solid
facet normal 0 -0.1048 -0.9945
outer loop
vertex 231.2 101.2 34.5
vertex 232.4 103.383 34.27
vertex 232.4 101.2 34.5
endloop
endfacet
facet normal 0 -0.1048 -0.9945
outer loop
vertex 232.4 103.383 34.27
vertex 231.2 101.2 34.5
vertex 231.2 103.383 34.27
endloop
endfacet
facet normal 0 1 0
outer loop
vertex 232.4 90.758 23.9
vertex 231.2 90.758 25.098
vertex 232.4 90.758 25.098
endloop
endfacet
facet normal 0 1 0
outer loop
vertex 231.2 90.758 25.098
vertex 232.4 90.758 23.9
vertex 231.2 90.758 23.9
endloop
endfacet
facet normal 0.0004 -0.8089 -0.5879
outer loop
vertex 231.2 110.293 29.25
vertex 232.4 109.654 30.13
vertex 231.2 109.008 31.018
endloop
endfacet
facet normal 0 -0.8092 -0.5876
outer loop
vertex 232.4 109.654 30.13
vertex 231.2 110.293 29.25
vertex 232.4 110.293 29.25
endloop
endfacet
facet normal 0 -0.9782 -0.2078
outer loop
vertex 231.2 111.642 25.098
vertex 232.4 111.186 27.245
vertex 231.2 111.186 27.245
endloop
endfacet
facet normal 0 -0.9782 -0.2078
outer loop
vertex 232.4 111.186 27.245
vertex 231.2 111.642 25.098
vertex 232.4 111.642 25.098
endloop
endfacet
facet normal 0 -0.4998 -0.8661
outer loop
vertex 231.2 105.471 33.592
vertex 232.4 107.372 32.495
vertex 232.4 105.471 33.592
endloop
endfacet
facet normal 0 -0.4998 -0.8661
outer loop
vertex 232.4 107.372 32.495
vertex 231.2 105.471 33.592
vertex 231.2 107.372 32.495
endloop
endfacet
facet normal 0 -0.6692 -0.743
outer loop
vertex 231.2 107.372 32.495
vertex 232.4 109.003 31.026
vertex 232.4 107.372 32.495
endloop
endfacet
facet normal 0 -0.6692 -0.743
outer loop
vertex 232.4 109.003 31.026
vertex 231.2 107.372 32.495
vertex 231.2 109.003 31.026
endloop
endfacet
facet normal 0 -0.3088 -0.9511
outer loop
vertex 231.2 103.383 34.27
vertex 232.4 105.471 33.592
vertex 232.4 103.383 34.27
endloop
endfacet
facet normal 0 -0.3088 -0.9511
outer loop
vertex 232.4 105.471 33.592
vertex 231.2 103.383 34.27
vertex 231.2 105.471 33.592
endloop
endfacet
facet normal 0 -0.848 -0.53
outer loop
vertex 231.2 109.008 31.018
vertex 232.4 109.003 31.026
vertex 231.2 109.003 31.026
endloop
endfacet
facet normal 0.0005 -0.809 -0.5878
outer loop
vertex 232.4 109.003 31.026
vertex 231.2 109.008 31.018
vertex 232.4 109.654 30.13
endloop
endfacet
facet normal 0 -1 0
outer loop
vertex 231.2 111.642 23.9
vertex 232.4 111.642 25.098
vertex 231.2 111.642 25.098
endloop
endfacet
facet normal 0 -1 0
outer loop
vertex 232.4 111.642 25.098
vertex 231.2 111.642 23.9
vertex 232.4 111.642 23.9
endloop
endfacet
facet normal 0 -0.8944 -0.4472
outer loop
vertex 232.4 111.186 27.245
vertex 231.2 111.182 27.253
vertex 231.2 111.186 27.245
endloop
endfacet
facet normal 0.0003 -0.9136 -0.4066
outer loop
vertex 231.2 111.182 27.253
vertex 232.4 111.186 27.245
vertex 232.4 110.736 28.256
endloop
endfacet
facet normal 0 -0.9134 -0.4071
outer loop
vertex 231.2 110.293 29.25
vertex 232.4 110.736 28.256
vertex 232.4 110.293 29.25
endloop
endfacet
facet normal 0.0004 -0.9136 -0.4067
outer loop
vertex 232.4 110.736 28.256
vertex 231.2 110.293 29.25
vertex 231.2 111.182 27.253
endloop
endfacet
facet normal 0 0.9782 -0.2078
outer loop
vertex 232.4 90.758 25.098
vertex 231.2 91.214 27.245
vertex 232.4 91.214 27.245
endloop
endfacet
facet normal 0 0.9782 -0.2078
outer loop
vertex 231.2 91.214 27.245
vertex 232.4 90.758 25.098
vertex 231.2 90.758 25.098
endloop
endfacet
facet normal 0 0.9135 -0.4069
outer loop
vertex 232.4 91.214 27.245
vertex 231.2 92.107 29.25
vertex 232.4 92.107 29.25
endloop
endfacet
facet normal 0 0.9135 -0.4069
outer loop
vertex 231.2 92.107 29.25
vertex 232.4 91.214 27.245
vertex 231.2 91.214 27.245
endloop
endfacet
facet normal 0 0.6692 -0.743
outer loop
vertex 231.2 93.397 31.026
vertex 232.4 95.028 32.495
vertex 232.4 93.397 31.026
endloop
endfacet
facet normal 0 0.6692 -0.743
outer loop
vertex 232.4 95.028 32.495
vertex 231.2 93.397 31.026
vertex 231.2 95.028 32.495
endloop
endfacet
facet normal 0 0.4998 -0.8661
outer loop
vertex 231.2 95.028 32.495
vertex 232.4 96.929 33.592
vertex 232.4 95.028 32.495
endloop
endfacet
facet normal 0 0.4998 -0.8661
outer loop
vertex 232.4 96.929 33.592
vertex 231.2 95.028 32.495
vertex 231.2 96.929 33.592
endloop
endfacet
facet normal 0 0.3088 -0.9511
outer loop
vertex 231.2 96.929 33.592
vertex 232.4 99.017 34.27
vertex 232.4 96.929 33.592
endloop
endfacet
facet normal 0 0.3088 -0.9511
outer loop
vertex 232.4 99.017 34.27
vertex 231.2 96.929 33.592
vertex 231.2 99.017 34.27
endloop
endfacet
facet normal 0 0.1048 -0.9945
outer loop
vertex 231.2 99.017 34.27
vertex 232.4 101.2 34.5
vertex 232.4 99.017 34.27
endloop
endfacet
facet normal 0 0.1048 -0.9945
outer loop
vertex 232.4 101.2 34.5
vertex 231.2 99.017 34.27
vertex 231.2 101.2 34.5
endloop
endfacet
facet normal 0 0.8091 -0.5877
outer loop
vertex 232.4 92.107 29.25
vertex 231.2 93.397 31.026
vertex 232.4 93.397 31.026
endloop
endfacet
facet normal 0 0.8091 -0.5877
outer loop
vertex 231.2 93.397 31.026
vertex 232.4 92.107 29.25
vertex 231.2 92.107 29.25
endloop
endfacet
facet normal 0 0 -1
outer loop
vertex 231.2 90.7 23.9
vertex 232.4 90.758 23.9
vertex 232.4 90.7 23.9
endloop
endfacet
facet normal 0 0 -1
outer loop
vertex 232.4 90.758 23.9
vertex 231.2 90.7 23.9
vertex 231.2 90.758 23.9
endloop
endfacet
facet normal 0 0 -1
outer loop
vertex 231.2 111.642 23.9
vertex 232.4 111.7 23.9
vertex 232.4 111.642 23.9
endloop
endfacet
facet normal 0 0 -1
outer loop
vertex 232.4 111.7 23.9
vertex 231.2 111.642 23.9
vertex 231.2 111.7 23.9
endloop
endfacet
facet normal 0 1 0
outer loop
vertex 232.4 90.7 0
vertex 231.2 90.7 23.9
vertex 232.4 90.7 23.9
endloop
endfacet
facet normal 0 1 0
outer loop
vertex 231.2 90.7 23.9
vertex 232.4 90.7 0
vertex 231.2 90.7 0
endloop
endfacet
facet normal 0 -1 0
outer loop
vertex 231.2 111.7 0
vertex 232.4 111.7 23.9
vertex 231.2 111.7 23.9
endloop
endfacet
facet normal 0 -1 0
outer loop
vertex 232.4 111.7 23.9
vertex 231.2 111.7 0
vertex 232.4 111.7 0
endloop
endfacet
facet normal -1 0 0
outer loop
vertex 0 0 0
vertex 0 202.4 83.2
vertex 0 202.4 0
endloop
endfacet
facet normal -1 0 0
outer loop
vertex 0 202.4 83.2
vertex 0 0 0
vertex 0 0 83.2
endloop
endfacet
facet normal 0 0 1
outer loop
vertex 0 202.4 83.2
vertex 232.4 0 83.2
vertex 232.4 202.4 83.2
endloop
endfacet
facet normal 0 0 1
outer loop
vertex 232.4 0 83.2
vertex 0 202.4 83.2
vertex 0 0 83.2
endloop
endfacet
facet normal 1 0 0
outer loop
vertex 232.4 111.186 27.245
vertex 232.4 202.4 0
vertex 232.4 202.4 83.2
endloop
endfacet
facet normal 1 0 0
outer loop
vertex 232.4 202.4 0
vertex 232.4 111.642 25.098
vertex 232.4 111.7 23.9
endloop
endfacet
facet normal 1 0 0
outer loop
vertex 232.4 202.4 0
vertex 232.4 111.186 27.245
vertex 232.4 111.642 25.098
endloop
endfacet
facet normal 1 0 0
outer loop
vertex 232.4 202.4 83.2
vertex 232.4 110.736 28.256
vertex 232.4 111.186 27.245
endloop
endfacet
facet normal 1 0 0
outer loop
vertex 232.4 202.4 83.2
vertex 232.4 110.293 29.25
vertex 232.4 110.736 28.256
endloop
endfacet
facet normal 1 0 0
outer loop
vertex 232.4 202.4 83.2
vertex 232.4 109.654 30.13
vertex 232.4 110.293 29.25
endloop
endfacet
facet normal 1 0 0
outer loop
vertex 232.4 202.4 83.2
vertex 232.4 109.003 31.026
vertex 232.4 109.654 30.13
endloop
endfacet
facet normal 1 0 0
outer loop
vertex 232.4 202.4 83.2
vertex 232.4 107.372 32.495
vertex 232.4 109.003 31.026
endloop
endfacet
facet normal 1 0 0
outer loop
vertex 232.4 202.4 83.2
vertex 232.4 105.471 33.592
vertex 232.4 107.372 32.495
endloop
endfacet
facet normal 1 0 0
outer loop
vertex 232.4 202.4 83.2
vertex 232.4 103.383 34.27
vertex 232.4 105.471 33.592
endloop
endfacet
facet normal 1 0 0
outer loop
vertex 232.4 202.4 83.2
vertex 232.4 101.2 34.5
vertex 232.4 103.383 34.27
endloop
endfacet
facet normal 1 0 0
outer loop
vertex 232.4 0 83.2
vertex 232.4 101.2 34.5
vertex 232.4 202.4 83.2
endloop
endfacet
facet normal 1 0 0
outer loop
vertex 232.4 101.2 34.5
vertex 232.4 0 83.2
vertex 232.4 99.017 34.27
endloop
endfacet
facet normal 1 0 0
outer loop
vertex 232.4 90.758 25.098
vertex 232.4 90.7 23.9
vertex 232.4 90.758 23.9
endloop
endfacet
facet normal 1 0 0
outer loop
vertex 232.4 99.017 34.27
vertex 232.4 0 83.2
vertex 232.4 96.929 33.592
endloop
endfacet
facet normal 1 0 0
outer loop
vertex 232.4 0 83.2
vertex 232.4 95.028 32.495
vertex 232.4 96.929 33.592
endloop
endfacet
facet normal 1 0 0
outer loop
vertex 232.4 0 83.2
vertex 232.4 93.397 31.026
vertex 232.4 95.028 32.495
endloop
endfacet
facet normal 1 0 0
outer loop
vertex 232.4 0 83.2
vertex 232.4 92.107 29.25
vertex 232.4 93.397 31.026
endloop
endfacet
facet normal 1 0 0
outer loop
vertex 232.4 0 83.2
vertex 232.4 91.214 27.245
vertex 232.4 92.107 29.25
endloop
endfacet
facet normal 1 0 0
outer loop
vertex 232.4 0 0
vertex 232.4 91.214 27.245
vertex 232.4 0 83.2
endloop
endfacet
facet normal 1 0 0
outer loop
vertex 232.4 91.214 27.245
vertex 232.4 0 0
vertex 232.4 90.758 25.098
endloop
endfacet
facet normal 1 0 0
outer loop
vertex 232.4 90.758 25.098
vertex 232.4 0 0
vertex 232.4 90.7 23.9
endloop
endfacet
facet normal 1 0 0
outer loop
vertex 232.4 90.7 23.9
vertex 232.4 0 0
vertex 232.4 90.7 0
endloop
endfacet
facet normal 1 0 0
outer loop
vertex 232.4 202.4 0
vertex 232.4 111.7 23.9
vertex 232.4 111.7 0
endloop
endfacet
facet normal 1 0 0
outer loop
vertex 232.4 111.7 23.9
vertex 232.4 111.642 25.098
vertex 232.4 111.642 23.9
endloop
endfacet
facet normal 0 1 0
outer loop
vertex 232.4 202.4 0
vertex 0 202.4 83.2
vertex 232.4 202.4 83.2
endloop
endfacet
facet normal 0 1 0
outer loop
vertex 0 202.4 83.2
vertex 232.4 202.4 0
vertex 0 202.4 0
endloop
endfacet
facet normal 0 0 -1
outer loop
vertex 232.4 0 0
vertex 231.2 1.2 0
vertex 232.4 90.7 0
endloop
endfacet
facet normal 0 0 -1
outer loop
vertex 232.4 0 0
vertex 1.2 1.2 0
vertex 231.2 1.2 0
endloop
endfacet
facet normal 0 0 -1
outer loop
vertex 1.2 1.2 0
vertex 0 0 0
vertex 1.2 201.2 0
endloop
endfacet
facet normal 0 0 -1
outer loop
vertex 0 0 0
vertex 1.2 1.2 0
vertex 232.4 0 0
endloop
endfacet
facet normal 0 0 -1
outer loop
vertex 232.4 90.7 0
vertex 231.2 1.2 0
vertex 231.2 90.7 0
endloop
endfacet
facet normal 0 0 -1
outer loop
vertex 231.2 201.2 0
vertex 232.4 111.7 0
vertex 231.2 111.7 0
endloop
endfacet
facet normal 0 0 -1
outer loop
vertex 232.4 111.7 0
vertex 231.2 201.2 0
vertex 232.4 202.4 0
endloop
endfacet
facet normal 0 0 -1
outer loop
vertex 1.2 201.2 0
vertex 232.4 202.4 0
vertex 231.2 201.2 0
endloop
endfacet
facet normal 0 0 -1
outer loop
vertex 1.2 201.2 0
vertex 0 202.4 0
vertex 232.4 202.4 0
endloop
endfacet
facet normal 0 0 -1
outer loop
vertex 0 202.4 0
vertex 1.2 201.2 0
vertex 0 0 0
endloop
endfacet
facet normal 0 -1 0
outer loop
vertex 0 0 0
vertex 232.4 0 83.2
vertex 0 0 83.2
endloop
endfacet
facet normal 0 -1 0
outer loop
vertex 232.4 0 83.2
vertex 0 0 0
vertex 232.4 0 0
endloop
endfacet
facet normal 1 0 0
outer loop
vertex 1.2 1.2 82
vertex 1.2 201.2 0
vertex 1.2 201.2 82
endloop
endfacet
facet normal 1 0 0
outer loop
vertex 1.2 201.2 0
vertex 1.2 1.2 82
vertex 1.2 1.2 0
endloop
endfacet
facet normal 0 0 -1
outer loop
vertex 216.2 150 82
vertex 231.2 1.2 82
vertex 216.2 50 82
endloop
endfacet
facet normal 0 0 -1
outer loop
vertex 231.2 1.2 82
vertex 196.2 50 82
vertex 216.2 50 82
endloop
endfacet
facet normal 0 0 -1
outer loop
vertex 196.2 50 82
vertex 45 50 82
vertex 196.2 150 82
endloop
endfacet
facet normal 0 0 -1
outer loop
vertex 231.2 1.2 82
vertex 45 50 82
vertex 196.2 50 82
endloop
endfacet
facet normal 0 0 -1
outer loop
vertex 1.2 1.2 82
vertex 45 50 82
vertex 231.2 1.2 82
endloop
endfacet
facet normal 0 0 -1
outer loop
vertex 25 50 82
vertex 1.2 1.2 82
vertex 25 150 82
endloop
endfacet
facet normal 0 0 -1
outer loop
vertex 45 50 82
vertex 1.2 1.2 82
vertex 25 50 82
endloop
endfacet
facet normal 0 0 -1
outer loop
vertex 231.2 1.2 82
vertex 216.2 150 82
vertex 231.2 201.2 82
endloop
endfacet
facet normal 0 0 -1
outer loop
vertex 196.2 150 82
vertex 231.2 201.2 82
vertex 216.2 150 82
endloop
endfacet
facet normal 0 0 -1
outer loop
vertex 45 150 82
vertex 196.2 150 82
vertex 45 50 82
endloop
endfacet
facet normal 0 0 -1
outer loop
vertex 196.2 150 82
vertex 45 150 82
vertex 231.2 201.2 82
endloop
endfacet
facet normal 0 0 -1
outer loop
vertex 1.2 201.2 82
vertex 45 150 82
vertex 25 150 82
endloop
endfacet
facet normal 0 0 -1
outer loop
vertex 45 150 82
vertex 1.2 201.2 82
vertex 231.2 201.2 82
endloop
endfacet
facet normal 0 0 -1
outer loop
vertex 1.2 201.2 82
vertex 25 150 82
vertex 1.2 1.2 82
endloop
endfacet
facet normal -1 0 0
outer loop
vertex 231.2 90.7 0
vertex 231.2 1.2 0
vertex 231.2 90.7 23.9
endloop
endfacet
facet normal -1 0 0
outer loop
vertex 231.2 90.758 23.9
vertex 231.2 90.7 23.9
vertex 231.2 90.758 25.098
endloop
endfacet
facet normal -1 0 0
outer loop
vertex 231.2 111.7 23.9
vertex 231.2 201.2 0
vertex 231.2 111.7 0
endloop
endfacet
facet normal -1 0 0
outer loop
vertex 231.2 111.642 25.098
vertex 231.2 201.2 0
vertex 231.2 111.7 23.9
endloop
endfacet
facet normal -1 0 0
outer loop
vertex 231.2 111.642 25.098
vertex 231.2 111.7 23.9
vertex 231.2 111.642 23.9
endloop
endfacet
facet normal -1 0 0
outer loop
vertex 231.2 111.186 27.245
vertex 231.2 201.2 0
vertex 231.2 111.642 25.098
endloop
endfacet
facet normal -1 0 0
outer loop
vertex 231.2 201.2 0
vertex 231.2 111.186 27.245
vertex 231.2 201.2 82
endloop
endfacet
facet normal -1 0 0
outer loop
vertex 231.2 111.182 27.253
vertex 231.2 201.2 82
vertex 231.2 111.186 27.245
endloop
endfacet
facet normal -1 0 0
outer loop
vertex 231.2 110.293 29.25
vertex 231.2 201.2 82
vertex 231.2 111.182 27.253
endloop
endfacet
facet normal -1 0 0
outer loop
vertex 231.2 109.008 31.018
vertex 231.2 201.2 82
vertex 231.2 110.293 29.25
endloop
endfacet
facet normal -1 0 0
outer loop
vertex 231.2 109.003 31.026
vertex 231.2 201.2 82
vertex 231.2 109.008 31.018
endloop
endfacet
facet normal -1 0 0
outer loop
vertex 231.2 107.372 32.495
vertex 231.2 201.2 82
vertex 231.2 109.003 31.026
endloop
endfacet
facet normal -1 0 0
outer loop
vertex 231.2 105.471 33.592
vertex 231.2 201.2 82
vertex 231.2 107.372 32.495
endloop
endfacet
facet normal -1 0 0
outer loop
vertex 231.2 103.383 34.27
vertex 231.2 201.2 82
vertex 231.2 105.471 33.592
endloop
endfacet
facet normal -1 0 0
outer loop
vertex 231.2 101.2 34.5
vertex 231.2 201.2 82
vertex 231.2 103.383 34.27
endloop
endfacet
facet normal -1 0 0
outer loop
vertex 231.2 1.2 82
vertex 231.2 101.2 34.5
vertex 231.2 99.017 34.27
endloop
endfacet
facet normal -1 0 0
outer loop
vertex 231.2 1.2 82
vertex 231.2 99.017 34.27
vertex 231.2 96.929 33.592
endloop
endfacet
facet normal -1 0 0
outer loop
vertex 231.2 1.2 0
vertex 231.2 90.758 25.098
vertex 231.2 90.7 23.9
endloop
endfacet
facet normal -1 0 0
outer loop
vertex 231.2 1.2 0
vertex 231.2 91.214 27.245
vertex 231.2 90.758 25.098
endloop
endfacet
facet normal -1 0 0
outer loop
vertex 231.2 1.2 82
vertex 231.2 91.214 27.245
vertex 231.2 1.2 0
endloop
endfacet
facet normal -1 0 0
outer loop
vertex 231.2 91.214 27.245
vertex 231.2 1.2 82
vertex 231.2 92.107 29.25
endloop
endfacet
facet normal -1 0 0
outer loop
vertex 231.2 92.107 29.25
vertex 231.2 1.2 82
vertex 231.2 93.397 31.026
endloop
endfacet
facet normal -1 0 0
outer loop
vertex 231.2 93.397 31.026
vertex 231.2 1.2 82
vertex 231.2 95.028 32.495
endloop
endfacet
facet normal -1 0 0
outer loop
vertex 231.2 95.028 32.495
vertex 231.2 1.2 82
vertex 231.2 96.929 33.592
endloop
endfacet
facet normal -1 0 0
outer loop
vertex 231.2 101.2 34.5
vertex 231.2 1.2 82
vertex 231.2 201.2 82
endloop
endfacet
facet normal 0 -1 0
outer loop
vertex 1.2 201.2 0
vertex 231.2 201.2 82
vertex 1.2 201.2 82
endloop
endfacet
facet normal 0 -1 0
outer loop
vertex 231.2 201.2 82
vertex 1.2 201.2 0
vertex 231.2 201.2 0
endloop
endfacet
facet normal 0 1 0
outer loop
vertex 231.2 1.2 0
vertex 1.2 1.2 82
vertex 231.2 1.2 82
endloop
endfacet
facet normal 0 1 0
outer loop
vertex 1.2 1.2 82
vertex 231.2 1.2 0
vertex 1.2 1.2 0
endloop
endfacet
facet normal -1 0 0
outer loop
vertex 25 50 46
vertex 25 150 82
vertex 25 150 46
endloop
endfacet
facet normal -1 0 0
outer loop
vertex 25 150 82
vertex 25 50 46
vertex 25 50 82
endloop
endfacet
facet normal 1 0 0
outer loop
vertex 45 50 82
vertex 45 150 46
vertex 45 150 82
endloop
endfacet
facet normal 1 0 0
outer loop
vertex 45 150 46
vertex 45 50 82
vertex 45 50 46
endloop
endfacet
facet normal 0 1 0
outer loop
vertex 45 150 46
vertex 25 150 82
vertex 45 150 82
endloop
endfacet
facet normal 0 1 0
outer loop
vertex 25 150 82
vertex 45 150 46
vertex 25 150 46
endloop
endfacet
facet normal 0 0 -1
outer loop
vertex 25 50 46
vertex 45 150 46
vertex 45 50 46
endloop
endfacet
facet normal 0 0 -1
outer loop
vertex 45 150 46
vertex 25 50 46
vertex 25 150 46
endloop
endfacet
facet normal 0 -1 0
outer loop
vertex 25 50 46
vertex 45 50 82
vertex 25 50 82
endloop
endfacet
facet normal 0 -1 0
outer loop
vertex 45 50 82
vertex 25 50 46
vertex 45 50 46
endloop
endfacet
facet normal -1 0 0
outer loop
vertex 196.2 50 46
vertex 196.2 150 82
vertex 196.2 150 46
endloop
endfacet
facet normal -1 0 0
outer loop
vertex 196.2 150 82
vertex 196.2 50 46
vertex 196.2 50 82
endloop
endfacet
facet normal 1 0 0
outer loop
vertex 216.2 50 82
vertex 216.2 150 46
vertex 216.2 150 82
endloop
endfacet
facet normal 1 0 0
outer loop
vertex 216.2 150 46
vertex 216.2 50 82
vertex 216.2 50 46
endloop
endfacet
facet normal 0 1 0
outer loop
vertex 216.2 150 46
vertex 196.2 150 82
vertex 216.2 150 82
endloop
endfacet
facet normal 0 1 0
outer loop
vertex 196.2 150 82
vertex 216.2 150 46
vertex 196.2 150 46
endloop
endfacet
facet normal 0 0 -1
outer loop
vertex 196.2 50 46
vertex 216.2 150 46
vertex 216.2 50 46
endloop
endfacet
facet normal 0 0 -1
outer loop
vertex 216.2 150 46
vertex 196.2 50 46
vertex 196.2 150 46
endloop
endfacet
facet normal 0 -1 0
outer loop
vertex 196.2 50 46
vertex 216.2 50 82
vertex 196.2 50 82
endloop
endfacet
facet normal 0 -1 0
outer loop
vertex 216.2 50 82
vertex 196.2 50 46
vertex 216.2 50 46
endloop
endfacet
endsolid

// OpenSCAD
/**
 * Case for Proxxon KT-70
 *
 * I made this 'case' for the Proxxon KT-70 compound table.
 * Mine is sitting on a shelf for most of the time and is 
 * gathering dust. In addition, I couldn't stack anything on
 * top, so it took up more space than I wanted.
 * This case fits my Prusa i3 MK2 build plate (barely) and
 * protects the KT-70 from dust and allows me to stack things
 * on top.
 *
 * Copyright 2018, Hendrik Busch
 * https://github.com/hmbusch
 *
 * Licensed under Creative Commons Attribution Share Alike 4.0.
 * https://creativecommons.org/licenses/by-sa/4.0/
 */
 
wallThickness = 1.2;
innerWidth = 230;
innerLength = 200;
innerHeight = 82;

union() {
    difference() {
        // outer cube
        cube([innerWidth + wallThickness * 2, innerLength + wallThickness * 2, innerHeight + wallThickness]);
        // inner cube
        translate([wallThickness, wallThickness, -0.1]) cube([innerWidth, innerLength, innerHeight + 0.1]);
        
        // cutout for side handle
        union() {
            translate([innerWidth + wallThickness -0.01, innerLength/2 + wallThickness, 24]) rotate([0, 90, 0]) cylinder(d = 21, h = wallThickness * 2);
            translate([innerWidth + wallThickness -0.01, innerLength/2 + wallThickness - 21/2, -0.1]) cube([wallThickness * 2, 21, 24]);
        }
    }
    // load support
    translate([25, (innerLength - 100) / 2, innerHeight - 36]) cube([20, 100, 36]);
    translate([innerWidth + wallThickness - 35, (innerLength - 100) / 2, innerHeight - 36]) cube([20, 100, 36]);

}
